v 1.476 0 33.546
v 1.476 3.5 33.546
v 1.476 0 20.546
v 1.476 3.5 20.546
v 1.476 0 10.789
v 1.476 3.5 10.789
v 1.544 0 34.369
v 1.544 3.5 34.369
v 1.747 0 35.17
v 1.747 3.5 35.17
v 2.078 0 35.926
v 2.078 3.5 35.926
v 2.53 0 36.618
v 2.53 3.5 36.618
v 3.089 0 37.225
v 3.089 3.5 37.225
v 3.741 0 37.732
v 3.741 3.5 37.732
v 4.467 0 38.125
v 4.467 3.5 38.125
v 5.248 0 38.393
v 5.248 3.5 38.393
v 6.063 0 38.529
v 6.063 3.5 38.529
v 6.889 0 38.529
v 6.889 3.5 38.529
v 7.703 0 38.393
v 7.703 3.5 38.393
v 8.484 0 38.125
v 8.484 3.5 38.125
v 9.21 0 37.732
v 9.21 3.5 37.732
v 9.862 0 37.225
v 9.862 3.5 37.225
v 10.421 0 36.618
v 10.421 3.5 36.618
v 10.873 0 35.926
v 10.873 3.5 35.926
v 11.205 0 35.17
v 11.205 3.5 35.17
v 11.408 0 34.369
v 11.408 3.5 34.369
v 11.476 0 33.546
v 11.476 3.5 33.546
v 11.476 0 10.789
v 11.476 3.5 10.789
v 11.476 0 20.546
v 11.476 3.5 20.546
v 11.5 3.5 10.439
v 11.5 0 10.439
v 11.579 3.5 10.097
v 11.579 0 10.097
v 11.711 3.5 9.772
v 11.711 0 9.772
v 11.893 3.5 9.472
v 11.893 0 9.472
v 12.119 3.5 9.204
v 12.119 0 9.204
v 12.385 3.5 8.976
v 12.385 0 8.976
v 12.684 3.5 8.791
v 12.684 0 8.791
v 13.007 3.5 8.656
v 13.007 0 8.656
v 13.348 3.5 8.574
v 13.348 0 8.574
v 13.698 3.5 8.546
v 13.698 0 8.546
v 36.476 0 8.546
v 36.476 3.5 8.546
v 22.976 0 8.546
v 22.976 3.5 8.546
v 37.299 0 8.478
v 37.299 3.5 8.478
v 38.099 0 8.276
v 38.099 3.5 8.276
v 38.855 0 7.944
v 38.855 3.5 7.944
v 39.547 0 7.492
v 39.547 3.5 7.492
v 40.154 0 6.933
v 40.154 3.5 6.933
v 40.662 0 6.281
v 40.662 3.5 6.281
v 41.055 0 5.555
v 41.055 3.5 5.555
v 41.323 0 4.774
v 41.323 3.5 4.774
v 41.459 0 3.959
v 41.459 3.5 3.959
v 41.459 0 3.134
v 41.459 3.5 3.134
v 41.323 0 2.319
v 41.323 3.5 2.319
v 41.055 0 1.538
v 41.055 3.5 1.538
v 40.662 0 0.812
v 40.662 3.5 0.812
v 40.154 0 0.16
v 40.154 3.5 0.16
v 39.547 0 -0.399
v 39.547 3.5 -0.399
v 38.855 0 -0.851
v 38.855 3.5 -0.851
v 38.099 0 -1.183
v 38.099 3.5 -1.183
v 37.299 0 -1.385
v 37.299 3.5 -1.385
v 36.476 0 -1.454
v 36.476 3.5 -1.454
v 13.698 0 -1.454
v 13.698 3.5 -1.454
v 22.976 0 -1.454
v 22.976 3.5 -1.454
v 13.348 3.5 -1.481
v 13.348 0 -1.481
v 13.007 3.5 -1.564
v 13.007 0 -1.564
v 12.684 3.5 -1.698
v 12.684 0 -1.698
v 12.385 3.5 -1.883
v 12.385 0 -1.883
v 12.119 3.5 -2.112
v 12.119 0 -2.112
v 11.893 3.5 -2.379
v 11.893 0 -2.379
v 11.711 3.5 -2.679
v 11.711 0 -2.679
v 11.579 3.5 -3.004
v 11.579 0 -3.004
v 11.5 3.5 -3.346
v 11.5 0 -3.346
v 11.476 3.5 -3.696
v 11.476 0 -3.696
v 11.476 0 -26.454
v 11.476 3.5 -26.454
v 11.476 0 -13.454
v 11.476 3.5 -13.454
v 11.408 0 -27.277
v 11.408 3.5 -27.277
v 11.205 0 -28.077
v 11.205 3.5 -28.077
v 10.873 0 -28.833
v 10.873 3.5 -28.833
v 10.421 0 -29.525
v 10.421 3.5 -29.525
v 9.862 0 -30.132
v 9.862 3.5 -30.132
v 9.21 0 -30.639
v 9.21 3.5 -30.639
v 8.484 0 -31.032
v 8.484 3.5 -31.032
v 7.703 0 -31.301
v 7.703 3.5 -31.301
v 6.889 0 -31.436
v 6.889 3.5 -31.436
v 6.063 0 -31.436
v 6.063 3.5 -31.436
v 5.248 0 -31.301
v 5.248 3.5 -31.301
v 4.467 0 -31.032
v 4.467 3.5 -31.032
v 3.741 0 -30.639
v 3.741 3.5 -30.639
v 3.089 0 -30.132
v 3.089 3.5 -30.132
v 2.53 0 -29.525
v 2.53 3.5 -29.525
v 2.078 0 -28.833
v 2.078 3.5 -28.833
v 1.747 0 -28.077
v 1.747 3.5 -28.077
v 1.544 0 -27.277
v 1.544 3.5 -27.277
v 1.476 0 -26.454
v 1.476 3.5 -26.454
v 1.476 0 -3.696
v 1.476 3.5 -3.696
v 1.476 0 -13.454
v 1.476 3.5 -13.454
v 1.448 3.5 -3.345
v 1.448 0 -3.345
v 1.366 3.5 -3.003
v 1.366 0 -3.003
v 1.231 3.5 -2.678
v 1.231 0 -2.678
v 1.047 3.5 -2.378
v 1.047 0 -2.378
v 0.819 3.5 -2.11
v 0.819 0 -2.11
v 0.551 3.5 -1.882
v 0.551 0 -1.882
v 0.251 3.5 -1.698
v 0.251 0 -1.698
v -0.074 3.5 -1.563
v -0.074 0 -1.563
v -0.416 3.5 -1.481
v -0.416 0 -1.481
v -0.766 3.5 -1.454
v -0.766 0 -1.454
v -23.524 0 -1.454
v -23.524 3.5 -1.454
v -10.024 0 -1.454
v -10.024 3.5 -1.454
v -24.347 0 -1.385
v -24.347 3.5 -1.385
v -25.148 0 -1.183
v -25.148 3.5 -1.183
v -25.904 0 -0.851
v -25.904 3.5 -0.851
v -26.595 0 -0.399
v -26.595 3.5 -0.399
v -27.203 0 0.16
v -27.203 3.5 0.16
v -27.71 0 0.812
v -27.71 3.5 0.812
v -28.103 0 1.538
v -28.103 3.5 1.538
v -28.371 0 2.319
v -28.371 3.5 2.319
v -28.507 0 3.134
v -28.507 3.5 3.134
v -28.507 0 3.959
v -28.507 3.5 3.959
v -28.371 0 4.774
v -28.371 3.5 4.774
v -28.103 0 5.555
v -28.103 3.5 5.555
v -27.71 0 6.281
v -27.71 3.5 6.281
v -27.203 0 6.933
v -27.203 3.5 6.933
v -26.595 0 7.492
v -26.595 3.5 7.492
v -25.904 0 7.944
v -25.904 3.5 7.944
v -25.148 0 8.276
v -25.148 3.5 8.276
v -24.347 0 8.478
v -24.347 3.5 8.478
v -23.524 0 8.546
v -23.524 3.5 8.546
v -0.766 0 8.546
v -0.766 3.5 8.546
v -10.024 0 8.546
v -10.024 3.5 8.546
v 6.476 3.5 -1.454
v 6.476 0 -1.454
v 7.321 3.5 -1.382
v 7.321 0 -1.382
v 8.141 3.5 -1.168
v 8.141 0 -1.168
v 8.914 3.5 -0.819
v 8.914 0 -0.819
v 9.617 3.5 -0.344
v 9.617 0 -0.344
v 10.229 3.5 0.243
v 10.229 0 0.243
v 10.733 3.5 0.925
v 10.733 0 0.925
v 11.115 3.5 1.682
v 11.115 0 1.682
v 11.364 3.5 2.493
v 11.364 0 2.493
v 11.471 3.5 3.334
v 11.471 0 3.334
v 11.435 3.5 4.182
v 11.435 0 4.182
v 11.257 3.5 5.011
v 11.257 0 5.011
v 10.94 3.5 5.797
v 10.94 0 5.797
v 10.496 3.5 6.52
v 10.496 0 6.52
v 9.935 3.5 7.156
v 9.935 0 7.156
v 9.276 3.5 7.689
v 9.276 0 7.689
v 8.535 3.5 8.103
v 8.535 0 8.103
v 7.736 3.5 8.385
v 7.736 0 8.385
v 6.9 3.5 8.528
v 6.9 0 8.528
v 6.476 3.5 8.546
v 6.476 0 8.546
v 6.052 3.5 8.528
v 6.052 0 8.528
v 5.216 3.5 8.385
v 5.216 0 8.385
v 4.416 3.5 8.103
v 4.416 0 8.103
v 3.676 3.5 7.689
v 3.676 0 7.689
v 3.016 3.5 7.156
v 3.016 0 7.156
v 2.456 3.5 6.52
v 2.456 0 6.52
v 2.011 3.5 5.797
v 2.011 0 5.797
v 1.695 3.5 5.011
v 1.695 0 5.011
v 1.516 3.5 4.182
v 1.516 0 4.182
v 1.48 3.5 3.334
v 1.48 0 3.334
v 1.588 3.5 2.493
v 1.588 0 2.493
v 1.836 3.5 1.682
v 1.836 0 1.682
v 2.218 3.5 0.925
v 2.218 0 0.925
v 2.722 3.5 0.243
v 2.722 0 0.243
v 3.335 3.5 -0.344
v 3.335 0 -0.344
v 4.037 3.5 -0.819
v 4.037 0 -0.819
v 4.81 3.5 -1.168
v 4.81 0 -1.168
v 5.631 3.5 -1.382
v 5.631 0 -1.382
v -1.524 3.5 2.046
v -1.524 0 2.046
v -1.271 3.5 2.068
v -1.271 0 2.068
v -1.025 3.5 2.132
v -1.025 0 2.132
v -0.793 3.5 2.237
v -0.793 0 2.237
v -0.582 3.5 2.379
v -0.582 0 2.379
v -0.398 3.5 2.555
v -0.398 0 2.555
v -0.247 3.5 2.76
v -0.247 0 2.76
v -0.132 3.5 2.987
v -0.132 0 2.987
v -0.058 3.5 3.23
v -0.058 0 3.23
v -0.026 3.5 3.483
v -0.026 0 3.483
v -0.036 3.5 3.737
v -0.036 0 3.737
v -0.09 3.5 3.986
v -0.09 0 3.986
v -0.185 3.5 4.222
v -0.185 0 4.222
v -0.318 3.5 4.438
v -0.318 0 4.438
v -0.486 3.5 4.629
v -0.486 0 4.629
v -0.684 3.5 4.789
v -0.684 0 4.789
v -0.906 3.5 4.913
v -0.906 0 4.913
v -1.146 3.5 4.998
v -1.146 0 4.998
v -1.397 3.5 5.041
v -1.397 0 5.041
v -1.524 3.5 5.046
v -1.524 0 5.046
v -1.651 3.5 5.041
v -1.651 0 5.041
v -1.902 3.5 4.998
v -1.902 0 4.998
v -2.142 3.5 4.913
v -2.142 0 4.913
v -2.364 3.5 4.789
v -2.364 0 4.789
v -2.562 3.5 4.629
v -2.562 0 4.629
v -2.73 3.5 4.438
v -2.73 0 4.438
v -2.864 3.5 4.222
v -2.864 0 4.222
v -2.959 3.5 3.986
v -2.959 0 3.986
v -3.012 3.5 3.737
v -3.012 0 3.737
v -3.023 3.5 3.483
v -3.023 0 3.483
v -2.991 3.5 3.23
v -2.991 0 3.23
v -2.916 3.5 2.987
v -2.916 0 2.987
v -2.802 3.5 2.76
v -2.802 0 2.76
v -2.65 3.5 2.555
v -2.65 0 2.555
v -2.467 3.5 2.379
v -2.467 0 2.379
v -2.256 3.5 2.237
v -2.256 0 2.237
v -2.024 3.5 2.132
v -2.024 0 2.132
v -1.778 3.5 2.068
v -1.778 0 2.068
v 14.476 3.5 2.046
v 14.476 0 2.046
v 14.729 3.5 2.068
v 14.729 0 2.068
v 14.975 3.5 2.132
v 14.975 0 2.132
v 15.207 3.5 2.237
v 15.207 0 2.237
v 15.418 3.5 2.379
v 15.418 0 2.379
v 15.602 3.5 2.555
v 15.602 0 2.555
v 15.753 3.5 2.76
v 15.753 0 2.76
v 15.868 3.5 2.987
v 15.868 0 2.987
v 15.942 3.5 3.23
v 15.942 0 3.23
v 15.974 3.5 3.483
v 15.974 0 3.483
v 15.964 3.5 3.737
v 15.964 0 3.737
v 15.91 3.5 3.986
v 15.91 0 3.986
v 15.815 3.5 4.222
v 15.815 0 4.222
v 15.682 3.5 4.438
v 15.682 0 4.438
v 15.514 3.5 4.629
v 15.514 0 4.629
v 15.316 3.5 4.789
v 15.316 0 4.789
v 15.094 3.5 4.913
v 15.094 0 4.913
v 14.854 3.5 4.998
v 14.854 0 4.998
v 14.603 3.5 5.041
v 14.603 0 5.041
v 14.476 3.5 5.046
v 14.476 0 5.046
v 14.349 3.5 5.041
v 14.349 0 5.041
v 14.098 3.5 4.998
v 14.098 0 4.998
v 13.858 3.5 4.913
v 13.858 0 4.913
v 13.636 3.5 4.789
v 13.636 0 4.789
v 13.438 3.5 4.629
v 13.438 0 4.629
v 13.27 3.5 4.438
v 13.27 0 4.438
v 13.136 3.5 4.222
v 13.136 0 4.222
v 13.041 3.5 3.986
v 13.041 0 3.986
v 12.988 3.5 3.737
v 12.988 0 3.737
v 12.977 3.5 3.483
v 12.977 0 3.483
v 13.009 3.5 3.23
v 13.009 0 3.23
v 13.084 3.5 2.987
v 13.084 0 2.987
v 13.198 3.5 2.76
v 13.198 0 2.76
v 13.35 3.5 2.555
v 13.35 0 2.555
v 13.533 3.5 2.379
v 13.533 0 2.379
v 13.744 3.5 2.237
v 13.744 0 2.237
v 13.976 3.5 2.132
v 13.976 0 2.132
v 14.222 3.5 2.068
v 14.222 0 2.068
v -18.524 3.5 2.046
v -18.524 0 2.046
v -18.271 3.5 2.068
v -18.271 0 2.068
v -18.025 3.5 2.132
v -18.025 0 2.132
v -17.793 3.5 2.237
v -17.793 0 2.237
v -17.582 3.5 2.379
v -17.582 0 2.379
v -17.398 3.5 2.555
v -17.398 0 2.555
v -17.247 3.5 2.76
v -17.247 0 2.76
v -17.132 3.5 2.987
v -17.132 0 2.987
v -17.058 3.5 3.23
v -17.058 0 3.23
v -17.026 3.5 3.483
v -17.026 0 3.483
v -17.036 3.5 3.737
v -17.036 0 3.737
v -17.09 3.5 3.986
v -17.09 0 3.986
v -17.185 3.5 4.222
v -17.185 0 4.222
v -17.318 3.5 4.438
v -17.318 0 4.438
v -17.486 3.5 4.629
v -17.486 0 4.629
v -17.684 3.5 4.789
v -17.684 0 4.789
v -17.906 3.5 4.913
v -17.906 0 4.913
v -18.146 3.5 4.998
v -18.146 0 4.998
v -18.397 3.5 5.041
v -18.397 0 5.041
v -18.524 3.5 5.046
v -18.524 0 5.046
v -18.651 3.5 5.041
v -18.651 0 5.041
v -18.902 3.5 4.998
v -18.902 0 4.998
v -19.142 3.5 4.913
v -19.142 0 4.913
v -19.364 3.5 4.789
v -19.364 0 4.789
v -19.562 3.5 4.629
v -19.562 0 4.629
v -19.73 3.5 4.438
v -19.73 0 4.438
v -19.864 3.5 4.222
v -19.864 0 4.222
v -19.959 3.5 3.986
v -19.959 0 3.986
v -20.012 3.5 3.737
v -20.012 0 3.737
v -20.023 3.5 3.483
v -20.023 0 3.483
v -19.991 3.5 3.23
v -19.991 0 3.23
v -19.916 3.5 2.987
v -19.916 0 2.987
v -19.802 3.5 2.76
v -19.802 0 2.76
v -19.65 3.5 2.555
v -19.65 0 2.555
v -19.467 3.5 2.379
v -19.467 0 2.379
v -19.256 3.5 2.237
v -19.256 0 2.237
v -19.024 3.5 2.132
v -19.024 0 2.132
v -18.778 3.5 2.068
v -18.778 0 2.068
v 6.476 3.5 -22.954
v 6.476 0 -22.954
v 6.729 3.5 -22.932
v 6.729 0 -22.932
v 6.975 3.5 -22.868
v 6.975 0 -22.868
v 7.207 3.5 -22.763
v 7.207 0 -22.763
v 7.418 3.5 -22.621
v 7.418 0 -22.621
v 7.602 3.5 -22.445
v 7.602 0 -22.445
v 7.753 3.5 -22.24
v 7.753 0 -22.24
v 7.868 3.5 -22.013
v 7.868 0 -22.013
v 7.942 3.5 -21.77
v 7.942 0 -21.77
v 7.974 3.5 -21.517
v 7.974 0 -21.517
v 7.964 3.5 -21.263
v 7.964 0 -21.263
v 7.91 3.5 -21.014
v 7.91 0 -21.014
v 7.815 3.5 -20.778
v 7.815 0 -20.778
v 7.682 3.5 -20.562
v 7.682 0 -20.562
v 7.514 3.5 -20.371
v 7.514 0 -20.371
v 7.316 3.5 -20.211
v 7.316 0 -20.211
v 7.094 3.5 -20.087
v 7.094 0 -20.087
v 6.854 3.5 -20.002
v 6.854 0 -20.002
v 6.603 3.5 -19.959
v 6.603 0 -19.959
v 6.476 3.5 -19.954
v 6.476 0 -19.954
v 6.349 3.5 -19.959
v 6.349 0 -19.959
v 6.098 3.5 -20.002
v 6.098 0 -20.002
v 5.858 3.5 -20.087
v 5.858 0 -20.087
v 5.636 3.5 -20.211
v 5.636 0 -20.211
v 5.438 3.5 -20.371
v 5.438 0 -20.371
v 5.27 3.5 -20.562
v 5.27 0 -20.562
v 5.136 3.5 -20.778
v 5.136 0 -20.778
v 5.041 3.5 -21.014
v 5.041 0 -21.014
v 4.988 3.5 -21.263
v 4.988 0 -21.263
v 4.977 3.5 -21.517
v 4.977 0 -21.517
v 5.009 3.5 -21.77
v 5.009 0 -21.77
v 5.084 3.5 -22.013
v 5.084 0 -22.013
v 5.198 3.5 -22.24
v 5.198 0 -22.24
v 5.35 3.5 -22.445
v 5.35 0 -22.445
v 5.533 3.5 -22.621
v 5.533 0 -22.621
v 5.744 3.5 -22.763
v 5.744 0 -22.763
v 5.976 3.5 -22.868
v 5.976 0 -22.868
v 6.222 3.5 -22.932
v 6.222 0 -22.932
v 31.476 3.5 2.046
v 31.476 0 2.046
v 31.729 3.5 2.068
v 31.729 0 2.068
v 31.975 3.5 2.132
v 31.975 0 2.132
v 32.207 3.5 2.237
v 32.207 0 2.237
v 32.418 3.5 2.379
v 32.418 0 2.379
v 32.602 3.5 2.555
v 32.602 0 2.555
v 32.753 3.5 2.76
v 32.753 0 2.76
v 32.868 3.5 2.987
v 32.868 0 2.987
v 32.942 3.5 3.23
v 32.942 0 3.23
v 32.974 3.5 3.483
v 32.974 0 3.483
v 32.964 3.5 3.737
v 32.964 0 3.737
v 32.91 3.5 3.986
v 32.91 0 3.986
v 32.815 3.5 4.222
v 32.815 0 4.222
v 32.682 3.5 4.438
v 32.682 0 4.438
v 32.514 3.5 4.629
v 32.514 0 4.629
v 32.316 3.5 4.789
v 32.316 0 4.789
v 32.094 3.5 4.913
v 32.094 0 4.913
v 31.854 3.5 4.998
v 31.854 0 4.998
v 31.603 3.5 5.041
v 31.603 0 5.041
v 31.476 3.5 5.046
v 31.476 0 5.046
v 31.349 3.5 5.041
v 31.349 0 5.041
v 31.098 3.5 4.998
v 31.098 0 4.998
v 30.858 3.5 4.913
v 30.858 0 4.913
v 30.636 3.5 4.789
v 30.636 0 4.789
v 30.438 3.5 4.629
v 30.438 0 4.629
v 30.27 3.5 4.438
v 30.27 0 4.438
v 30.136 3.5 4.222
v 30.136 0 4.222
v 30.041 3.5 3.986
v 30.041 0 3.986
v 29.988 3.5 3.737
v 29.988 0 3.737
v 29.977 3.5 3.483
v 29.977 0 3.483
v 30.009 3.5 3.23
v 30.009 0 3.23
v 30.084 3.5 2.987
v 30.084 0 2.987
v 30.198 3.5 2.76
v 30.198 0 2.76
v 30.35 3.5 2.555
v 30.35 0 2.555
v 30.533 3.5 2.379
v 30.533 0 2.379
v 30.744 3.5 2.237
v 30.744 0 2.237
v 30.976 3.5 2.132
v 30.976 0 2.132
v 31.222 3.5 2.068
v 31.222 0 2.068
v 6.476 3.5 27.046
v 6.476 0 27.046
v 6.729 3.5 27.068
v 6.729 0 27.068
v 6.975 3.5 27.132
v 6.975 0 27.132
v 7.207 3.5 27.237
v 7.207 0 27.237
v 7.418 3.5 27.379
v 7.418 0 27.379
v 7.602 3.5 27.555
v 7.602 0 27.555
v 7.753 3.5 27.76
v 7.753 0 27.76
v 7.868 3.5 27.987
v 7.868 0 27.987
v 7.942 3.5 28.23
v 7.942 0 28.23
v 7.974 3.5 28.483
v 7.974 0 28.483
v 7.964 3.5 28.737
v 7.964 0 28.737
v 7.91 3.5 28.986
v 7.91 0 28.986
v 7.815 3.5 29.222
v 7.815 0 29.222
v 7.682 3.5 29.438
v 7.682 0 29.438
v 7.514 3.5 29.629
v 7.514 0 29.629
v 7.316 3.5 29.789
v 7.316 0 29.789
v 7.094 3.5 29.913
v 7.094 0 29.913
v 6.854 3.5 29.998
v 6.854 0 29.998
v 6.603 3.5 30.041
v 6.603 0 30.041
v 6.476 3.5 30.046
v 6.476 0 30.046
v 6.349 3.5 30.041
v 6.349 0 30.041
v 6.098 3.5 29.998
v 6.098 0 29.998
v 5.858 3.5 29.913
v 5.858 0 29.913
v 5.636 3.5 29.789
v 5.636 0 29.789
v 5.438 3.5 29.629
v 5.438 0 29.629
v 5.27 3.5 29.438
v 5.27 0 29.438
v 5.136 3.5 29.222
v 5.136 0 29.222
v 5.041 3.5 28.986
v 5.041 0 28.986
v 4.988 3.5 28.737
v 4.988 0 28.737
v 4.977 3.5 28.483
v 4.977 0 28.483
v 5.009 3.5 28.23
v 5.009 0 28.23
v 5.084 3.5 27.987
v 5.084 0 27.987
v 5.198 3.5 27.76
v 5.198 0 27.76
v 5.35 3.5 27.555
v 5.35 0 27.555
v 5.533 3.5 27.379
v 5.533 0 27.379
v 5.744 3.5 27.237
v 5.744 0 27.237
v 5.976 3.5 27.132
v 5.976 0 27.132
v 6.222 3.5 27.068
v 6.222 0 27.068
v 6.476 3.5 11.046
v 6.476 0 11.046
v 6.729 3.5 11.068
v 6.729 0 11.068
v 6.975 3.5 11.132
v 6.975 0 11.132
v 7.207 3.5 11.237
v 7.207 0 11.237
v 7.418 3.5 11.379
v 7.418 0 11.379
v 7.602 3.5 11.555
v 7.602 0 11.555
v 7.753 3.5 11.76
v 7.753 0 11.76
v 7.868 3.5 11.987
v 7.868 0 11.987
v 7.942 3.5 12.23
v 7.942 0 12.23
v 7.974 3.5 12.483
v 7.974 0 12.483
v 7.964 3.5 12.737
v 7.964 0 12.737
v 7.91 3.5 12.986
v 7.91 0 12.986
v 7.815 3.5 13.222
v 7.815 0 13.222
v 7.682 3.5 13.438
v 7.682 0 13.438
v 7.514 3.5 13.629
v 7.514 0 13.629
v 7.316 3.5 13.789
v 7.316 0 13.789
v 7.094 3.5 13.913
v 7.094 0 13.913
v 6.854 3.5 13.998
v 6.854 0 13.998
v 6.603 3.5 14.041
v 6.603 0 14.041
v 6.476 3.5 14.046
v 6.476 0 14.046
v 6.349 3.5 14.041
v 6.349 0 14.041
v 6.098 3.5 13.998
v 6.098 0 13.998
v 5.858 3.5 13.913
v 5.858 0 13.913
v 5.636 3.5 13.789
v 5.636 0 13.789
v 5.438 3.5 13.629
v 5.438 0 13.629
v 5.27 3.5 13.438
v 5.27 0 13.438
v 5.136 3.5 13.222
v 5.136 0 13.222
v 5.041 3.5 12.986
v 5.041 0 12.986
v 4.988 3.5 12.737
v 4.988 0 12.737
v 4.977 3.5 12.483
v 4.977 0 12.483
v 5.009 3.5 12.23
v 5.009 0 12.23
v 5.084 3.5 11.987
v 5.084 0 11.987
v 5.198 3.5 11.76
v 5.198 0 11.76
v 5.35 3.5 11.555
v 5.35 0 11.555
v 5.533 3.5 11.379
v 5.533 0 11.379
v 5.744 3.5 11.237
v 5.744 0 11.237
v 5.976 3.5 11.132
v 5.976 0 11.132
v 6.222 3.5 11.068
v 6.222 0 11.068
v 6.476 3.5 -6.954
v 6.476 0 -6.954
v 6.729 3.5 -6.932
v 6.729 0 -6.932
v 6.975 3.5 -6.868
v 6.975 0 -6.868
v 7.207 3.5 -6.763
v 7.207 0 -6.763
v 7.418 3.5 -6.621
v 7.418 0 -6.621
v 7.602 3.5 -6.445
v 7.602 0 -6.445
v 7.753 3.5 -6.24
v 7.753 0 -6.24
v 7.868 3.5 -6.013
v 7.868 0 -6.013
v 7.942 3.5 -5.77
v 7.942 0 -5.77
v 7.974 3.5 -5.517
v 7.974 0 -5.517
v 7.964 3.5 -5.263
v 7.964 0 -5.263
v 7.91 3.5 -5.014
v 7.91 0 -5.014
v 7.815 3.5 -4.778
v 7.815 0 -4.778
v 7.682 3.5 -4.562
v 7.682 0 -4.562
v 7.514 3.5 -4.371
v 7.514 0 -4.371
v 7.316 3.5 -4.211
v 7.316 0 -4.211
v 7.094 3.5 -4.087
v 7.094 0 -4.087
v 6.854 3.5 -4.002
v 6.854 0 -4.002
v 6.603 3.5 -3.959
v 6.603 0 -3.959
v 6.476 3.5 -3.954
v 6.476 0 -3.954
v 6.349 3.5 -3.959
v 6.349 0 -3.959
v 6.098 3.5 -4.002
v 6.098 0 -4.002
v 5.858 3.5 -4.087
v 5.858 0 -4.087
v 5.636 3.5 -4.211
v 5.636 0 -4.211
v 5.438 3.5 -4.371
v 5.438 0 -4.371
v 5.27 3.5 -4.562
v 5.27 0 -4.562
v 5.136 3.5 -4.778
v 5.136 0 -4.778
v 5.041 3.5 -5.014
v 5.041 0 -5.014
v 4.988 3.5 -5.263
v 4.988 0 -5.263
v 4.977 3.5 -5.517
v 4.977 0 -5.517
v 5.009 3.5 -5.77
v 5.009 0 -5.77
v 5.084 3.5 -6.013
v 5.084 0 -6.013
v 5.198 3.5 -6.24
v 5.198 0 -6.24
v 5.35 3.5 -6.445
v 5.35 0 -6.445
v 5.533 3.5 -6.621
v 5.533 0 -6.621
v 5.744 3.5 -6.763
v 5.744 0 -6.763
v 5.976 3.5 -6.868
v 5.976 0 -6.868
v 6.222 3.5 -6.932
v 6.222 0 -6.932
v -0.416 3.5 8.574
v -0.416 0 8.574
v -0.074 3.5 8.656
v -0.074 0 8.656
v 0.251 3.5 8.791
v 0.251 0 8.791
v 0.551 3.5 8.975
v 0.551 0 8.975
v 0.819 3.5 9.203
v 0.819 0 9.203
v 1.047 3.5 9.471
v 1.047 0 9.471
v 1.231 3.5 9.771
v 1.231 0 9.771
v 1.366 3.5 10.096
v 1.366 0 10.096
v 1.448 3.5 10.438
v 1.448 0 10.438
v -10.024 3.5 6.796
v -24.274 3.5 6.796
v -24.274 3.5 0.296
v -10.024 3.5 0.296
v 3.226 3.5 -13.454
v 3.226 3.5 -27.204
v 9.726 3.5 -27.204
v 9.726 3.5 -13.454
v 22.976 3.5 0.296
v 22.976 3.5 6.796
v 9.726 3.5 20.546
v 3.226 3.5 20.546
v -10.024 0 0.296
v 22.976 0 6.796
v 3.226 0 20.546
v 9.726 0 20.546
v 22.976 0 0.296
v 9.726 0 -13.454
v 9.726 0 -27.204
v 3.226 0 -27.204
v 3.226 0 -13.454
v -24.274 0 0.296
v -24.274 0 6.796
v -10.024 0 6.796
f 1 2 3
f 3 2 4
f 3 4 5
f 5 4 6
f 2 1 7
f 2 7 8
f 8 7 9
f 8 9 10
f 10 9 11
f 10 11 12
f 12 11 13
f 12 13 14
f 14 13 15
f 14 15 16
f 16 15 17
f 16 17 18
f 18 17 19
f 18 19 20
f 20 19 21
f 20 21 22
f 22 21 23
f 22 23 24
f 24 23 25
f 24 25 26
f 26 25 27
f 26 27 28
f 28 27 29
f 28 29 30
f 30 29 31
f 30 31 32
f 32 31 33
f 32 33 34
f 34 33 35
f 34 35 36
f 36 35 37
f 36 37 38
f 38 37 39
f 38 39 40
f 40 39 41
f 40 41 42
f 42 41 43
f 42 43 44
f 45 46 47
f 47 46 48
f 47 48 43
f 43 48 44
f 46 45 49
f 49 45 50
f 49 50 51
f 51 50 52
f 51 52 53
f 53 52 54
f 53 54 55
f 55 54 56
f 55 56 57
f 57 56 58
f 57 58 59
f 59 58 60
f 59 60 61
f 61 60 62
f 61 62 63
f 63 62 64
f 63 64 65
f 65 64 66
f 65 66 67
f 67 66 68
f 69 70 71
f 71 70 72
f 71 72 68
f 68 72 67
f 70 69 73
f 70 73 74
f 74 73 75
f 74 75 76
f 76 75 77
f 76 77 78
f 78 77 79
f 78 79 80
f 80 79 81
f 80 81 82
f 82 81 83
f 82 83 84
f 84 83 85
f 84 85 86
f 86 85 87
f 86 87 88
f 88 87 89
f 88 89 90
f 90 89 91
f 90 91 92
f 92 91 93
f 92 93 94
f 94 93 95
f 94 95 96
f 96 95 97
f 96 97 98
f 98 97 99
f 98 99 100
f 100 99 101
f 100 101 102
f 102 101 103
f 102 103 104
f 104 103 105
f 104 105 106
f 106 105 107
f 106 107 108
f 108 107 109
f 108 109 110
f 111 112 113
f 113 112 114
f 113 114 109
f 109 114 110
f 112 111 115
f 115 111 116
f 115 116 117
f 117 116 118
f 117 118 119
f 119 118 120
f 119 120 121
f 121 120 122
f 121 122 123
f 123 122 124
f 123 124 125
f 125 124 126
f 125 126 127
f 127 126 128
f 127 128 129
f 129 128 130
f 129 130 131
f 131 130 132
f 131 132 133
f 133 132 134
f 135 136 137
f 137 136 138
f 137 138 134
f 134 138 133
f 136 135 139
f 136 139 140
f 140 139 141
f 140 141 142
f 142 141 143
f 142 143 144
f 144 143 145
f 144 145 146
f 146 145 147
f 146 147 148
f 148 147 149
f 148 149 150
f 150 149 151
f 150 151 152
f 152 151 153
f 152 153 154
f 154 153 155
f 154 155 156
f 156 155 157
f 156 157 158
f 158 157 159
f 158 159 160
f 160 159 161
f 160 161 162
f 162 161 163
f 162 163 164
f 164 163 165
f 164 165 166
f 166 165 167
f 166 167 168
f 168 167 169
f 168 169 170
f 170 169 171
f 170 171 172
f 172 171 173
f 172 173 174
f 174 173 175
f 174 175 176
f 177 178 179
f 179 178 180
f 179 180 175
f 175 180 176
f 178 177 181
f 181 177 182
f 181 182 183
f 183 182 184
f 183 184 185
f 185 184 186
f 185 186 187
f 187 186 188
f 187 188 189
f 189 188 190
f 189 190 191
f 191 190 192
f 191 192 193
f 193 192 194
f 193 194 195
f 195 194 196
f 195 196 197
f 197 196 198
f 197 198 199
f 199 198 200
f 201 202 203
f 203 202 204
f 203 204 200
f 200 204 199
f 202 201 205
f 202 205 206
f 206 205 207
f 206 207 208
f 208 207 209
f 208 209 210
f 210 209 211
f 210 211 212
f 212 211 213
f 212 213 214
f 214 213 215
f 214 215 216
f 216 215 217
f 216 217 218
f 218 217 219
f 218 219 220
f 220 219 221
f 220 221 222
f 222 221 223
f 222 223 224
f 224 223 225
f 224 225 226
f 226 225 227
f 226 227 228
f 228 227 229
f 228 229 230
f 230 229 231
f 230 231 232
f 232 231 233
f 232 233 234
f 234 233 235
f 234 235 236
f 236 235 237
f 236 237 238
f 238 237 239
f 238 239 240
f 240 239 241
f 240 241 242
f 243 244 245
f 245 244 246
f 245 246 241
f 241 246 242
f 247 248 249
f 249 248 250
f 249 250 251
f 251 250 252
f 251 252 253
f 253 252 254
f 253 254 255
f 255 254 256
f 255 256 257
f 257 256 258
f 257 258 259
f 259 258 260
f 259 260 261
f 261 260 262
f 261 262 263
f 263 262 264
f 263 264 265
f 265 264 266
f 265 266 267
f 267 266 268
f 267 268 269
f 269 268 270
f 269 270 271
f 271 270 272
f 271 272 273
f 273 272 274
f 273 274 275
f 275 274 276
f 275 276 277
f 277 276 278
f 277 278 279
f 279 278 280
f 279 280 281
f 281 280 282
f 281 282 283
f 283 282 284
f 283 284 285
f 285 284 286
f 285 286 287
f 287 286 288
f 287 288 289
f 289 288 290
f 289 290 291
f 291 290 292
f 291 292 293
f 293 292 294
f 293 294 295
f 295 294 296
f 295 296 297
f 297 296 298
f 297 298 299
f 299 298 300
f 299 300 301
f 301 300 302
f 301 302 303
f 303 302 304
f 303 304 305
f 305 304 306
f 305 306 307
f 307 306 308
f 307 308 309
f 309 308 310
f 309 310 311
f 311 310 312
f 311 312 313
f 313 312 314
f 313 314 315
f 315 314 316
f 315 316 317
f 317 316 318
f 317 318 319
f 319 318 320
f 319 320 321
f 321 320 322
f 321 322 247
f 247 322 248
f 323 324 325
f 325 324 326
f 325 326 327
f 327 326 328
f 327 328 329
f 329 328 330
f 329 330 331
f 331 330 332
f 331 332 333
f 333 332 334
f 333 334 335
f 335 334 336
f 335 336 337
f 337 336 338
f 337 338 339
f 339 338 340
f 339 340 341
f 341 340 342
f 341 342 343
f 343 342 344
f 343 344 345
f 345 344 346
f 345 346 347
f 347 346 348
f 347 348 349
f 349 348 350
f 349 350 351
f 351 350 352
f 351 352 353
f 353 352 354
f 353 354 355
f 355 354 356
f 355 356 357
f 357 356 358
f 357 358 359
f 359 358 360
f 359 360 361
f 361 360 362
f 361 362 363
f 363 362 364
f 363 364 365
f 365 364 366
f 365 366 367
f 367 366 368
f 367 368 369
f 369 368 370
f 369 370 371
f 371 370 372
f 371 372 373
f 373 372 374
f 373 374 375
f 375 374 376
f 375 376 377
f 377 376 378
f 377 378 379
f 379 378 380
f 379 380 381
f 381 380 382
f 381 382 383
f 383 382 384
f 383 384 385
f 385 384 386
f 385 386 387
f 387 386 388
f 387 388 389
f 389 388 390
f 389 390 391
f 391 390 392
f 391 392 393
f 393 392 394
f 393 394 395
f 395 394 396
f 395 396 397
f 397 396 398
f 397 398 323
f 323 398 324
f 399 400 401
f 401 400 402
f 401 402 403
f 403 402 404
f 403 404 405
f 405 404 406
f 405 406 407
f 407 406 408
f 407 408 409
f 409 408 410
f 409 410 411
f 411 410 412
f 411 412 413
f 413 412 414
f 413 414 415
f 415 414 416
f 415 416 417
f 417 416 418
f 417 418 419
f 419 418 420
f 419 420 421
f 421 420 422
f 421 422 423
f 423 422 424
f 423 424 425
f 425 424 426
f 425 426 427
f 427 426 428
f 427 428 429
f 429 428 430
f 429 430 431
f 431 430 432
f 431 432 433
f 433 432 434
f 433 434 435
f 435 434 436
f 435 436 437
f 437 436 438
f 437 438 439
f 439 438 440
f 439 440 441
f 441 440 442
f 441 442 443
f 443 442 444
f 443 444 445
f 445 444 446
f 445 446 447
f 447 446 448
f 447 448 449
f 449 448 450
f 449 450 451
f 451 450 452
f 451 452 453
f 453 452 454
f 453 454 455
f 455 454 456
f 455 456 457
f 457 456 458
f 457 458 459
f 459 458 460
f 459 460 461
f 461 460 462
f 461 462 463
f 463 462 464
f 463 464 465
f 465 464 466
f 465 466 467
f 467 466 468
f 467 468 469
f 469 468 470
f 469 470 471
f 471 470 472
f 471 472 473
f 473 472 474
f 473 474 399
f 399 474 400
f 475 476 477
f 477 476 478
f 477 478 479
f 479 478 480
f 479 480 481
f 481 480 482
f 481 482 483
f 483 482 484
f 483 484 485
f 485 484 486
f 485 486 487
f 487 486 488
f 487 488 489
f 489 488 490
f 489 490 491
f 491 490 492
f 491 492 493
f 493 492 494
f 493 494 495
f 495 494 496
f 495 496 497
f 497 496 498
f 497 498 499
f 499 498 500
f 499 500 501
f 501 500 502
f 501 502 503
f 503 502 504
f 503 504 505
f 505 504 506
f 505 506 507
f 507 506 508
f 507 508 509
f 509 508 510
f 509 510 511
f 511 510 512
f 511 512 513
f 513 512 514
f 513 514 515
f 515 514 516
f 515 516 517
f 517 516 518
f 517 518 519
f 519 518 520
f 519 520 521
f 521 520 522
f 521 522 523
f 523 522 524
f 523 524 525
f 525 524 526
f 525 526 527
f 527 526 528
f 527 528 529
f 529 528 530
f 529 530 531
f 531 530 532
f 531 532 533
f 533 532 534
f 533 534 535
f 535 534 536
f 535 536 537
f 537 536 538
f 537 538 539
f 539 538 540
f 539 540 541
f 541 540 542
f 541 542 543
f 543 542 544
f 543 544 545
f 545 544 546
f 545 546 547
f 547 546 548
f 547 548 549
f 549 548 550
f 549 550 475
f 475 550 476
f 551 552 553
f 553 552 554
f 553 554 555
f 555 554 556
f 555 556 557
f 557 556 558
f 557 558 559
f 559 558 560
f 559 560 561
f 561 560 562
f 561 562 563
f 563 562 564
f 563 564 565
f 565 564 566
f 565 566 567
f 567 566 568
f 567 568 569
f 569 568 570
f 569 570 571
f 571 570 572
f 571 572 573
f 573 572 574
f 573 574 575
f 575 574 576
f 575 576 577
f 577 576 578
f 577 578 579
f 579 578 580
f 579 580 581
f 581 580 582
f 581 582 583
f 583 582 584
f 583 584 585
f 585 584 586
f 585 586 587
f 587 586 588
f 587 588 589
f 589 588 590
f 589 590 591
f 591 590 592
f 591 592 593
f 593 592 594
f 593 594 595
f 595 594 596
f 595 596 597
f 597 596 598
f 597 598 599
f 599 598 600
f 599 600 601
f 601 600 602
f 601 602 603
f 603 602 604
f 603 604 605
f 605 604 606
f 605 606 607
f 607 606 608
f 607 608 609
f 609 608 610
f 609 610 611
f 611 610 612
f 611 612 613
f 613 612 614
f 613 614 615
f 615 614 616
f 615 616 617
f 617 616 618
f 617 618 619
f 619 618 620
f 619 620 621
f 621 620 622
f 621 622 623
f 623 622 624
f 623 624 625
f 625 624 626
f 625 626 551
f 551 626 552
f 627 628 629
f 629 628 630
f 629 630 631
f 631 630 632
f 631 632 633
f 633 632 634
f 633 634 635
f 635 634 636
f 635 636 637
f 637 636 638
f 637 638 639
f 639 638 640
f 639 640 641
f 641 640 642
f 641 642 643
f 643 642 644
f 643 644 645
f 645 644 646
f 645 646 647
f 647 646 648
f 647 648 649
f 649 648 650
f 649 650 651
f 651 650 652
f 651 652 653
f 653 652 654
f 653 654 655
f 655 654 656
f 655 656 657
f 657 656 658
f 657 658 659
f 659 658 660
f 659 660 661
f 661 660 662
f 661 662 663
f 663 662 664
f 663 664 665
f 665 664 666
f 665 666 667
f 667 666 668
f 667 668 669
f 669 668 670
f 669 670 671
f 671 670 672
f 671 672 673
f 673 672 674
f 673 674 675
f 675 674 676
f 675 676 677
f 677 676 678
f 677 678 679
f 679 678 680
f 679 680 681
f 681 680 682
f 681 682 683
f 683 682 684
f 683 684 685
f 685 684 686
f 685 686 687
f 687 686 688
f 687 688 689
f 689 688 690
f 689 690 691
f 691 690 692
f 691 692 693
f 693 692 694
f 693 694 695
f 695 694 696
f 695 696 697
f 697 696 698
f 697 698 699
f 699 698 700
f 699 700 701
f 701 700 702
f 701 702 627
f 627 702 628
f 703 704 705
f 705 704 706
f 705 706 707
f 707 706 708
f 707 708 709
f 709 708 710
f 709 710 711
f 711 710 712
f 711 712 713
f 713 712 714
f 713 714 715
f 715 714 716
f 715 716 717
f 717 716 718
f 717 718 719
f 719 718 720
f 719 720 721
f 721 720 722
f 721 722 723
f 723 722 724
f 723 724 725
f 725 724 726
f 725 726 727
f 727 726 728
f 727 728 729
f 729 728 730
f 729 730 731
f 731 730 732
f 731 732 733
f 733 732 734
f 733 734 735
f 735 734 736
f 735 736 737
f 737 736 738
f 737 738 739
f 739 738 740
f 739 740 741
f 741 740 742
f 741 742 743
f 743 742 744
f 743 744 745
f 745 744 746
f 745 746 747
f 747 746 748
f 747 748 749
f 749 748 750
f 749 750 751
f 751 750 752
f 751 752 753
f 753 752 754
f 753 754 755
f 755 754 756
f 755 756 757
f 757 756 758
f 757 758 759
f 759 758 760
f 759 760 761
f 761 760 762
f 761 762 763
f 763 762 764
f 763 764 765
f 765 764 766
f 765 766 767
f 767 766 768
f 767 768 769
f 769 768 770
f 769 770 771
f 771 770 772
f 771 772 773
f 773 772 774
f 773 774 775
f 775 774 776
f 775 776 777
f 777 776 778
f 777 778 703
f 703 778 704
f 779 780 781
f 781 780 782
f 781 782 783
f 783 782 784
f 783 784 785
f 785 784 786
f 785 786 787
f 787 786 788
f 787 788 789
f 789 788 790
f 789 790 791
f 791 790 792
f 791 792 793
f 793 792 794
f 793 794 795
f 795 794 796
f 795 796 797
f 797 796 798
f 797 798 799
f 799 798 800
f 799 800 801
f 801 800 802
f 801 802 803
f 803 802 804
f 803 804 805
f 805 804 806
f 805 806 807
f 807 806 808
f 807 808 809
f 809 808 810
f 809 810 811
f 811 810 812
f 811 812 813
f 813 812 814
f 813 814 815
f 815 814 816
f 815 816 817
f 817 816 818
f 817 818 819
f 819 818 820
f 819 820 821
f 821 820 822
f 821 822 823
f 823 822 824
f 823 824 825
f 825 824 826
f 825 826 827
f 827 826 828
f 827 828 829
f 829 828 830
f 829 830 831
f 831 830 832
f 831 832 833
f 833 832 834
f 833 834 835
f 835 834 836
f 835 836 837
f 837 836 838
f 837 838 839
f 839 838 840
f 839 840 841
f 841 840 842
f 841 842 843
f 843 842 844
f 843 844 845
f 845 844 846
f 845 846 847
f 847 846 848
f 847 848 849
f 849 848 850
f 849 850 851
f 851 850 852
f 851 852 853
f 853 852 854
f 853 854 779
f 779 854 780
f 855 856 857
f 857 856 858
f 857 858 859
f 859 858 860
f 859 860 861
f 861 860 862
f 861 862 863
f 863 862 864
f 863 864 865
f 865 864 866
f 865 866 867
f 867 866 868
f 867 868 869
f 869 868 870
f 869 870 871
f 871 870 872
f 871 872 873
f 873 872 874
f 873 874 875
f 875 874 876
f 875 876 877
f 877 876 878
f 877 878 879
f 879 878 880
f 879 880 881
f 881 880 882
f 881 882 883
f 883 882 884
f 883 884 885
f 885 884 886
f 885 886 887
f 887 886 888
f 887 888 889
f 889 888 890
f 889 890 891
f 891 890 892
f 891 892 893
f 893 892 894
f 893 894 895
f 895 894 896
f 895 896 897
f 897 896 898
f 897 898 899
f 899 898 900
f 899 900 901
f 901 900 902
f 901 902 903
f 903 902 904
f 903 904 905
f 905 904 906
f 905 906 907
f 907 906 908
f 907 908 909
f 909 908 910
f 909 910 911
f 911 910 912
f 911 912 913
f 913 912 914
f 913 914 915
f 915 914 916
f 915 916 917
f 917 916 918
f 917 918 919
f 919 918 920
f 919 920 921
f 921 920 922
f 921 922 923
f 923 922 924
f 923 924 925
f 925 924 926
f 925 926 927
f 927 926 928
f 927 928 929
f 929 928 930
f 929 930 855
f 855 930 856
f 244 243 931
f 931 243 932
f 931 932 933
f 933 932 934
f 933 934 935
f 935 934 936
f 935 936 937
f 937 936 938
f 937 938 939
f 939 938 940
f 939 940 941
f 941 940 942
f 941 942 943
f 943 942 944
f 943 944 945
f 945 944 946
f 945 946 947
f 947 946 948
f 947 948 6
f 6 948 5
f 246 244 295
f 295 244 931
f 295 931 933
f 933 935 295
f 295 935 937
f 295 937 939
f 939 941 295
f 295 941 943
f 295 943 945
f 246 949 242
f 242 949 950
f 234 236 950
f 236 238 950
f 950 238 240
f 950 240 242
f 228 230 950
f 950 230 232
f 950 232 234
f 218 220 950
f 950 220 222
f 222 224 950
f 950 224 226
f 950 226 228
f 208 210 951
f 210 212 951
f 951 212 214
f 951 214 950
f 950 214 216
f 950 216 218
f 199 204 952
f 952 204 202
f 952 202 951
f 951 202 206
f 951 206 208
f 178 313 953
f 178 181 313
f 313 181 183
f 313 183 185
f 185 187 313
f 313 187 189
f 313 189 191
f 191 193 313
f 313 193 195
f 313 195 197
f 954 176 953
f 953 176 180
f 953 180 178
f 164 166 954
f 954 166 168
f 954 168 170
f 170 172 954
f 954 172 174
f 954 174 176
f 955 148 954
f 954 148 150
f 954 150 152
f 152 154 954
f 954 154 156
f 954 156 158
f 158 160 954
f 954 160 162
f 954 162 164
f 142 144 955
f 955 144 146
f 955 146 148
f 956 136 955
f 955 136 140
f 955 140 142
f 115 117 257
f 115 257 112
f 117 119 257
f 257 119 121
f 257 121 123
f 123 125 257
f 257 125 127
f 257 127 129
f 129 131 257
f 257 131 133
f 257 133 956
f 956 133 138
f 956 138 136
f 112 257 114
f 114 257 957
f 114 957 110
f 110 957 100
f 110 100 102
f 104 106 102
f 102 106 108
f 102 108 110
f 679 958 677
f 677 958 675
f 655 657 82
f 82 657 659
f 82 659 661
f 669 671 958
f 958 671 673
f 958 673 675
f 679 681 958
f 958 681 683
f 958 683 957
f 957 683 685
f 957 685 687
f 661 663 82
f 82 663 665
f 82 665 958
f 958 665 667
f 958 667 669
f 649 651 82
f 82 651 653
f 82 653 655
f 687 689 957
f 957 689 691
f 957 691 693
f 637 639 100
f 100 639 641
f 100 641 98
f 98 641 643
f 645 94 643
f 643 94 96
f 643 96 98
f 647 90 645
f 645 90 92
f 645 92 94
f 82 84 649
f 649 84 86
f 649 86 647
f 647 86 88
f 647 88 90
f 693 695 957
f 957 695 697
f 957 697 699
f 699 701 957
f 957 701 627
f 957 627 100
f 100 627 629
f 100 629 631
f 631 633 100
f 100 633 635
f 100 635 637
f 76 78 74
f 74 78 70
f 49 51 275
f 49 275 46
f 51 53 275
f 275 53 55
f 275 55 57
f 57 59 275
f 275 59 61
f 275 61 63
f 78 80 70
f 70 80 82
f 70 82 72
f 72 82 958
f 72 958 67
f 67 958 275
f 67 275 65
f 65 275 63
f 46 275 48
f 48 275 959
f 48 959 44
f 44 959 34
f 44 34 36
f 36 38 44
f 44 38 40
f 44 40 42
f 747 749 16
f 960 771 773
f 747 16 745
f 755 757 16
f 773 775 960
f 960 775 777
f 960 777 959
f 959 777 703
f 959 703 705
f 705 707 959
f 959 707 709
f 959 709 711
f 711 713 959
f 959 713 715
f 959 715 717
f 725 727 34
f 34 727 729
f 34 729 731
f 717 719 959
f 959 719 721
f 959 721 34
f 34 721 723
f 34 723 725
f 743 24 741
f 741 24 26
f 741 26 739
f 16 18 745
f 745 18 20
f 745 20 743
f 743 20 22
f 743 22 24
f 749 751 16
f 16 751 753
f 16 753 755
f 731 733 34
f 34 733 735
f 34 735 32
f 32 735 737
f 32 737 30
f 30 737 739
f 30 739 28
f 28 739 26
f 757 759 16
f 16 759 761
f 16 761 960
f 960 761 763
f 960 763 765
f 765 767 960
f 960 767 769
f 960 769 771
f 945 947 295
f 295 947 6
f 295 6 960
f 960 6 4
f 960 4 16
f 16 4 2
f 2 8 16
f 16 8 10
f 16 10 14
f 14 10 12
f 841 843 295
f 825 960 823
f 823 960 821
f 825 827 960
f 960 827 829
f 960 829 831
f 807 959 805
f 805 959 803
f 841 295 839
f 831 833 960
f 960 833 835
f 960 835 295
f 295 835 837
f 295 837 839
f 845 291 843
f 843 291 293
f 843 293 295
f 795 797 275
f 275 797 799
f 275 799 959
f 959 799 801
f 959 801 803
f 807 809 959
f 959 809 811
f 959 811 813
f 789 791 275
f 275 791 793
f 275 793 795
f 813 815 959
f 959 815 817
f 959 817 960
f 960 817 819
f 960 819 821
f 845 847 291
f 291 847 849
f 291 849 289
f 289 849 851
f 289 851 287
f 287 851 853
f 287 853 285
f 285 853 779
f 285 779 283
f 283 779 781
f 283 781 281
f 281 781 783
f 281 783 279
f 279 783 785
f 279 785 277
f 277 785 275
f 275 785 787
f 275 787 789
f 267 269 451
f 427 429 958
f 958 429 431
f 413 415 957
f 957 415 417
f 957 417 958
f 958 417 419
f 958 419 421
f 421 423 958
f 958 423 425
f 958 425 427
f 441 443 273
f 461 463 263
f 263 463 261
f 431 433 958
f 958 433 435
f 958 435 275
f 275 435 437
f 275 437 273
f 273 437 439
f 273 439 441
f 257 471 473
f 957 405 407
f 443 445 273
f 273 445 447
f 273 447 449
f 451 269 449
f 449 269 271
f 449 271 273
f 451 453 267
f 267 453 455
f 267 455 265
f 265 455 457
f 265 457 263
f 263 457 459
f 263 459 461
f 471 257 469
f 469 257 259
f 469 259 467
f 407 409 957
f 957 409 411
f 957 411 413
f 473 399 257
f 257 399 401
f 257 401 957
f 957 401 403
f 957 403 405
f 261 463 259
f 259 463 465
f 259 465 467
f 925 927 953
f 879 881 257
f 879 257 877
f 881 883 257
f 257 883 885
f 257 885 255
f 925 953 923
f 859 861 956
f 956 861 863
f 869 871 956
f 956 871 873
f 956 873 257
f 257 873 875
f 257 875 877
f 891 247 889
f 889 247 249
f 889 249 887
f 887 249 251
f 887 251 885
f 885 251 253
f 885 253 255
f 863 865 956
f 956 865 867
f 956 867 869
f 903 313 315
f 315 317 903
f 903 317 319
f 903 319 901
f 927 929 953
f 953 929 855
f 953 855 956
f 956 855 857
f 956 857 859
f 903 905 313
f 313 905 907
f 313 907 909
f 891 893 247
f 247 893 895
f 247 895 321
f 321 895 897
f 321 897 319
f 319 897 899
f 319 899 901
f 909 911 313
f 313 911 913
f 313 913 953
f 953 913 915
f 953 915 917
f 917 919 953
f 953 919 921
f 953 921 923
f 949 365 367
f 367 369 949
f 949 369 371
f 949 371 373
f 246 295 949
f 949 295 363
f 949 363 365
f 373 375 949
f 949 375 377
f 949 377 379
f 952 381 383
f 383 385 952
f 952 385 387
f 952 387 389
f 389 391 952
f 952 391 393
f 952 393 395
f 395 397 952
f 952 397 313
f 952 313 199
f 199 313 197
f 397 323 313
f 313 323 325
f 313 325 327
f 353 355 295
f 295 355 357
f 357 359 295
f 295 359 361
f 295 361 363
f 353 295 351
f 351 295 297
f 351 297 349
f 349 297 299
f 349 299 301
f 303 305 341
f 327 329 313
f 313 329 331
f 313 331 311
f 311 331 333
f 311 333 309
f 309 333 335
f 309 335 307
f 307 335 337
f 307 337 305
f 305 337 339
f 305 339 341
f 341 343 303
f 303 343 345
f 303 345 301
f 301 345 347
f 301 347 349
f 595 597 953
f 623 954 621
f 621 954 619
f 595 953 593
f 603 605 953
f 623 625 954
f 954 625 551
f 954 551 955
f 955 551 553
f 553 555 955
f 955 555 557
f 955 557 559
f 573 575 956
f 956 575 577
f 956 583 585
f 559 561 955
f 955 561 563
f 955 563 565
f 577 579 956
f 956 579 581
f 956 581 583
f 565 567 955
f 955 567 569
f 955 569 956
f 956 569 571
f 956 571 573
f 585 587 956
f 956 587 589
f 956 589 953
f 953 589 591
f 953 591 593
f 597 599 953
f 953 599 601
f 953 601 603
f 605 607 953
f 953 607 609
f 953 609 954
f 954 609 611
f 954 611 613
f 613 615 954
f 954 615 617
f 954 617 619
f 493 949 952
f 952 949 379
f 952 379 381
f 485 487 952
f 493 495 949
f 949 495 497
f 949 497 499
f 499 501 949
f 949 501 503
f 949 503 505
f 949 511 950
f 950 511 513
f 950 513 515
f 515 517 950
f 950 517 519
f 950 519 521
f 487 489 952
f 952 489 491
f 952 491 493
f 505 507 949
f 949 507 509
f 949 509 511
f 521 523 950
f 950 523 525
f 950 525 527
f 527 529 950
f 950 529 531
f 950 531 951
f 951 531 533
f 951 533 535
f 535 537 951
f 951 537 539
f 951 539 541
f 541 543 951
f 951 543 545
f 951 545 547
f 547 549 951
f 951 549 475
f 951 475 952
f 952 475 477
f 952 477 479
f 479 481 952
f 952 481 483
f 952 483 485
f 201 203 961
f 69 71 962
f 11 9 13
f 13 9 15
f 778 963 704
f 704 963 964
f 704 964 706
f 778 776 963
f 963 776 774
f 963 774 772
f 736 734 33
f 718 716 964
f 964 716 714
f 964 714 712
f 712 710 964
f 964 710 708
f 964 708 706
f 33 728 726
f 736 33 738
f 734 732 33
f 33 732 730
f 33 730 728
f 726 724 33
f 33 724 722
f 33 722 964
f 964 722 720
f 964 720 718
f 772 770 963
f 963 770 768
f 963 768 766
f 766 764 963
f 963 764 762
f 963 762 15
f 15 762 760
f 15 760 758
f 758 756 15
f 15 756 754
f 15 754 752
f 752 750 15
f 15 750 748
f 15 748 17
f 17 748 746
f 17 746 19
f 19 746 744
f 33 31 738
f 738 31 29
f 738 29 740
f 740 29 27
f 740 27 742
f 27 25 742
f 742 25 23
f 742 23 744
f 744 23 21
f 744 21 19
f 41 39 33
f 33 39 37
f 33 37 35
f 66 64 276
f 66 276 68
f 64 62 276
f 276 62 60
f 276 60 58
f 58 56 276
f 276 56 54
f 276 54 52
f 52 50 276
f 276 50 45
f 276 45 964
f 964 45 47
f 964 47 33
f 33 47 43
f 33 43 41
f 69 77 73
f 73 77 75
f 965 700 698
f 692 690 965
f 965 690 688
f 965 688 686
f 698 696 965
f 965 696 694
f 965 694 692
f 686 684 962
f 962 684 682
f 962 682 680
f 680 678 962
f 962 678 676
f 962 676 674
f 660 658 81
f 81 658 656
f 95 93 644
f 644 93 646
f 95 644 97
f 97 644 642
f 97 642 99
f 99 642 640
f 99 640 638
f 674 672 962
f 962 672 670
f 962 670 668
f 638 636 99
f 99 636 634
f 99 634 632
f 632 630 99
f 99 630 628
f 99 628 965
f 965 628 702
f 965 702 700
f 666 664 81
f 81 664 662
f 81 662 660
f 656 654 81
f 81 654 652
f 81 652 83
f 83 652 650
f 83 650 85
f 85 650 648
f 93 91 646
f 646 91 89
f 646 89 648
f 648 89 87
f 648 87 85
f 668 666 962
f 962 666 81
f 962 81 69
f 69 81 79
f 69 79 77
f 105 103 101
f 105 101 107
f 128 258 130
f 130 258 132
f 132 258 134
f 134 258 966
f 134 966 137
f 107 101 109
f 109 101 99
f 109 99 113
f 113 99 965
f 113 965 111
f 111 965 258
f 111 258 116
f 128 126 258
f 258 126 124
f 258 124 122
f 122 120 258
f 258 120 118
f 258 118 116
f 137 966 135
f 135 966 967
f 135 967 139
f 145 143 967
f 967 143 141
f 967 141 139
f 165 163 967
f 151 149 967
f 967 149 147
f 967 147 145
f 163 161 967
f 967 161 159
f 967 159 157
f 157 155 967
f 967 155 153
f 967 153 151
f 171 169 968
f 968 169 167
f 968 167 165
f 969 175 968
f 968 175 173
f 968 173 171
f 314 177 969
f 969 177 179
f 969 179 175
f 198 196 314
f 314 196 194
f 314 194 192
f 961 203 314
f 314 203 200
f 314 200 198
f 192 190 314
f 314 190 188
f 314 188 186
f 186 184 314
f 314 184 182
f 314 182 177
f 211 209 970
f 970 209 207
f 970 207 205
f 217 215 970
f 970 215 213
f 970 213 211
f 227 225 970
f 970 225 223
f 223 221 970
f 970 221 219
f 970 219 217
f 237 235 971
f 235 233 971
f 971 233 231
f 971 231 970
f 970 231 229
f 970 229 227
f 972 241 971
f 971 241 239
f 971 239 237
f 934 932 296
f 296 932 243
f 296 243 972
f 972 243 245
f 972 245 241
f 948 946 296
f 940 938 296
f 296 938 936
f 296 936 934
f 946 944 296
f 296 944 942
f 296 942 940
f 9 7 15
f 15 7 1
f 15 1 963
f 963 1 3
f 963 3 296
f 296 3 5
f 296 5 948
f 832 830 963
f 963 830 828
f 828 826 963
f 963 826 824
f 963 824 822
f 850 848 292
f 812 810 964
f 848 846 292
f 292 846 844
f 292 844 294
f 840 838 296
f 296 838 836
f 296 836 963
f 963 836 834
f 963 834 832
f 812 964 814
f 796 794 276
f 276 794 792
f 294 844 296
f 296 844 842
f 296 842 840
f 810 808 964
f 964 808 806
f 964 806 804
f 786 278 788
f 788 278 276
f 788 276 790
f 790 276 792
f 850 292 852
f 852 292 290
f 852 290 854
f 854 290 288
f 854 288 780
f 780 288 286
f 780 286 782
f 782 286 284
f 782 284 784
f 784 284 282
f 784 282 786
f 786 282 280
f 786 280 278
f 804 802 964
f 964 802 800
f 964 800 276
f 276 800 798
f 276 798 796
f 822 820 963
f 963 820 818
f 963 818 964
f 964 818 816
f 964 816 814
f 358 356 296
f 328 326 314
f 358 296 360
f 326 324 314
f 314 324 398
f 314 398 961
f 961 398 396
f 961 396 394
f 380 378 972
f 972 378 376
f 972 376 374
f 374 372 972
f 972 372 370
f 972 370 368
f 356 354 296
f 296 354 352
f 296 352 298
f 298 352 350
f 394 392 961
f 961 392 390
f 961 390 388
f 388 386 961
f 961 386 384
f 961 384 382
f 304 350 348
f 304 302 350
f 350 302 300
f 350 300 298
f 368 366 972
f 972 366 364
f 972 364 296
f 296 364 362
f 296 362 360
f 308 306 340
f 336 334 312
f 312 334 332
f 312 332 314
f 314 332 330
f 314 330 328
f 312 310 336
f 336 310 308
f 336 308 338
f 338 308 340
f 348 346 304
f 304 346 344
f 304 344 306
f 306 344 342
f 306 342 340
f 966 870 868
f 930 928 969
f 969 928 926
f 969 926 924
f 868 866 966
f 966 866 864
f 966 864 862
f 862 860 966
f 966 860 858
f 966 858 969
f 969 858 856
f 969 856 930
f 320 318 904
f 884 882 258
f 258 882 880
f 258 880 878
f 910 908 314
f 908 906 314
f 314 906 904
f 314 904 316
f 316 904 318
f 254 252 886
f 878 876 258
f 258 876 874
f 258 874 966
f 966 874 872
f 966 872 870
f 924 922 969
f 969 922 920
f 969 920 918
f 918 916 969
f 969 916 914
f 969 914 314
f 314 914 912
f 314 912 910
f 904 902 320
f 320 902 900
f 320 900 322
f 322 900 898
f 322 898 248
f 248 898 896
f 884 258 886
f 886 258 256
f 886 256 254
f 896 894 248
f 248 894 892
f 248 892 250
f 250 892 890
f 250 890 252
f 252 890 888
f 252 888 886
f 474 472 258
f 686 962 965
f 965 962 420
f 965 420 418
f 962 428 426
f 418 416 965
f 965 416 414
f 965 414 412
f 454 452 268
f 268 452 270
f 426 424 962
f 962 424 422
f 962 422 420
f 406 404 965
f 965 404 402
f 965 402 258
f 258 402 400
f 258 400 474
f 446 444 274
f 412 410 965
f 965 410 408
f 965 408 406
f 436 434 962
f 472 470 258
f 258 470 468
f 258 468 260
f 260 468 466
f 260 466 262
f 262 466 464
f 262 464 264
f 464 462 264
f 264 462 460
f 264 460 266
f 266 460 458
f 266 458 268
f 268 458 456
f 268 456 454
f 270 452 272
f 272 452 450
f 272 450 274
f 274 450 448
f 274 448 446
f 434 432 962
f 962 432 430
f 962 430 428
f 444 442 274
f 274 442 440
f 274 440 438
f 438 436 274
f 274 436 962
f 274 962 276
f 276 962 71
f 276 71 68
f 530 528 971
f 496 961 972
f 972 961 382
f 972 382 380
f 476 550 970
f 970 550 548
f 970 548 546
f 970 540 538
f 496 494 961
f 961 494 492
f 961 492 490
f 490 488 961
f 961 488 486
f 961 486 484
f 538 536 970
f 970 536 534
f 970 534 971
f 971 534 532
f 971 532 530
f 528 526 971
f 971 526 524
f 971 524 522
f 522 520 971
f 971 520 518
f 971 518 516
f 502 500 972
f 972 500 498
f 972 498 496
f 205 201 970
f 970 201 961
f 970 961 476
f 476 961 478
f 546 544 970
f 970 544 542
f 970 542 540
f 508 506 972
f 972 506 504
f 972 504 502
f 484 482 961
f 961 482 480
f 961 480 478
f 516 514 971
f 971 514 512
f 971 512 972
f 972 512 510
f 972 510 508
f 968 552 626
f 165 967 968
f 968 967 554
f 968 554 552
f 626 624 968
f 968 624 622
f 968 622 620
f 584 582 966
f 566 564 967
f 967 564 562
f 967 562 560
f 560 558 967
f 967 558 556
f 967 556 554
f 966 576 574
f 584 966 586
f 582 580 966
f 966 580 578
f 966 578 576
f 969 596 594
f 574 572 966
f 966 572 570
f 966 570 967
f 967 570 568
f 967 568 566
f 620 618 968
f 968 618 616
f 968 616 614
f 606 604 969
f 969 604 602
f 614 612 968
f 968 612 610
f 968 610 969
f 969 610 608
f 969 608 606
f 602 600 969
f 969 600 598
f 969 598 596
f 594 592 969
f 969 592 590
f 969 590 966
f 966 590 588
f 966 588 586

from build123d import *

# Parameters (mm, degrees)
CROQUIS1_R              = 1.5
CROQUIS1_R_2            = 5
SALIENTE_EXTRUIR2_DEPTH = 3.5


with BuildPart() as part:
    # Croquis1 → Saliente-Extruir2 (new body)
    with BuildSketch(Plane(origin=(0, 0, 0), x_dir=(1, 0, 0), z_dir=(0, 1, 0))):
        with BuildLine():
            Line((1.47572532, 11.484579709), (1.47572532, 3.695762793))
            ThreePointArc((1.47572532, 3.695762793), (0.818994747, 2.110274939), (-0.766493108, 1.453544366))
            Line((-0.766493108, 1.453544366), (-23.52427468, 1.453544366))
            ThreePointArc((-23.52427468, 1.453544366), (-28.52427468, -3.546455634), (-23.52427468, -8.546455634))
            Line((-23.52427468, -8.546455634), (-0.766493108, -8.546455634))
            ThreePointArc((-0.766493108, -8.546455634), (0.818994747, -9.203186206), (1.47572532, -10.788674061))
            Line((1.47572532, -10.788674061), (1.47572532, -18.577490976))
            Line((1.47572532, -18.577490976), (1.47572532, -33.546455634))
            ThreePointArc((1.47572532, -33.546455634), (6.47572532, -38.546455634), (11.47572532, -33.546455634))
            Line((11.47572532, -33.546455634), (11.47572532, -10.788674061))
            Line((11.47572532, -10.788674061), (11.47572532, -10.748363891))
            ThreePointArc((11.47572532, -10.748363891), (12.133603326, -9.190173106), (13.697697252, -8.546455634))
            Line((13.697697252, -8.546455634), (36.47572532, -8.546455634))
            ThreePointArc((36.47572532, -8.546455634), (41.47572532, -3.546455634), (36.47572532, 1.453544366))
            Line((36.47572532, 1.453544366), (13.697697252, 1.453544366))
            ThreePointArc((13.697697252, 1.453544366), (12.133603326, 2.097261838), (11.47572532, 3.655452623))
            Line((11.47572532, 3.655452623), (11.47572532, 3.695762793))
            Line((11.47572532, 3.695762793), (11.47572532, 26.453544366))
            ThreePointArc((11.47572532, 26.453544366), (6.47572532, 31.453544366), (1.47572532, 26.453544366))
            Line((1.47572532, 26.453544366), (1.47572532, 11.484579709))
        make_face()
        with Locations(Location((-1.52427468, -3.546455634, 0), (0, 0, 270))):
            Circle(CROQUIS1_R, mode=Mode.SUBTRACT)
        with Locations(Location((6.47572532, -28.546455634, 0), (0, 0, 270))):
            Circle(CROQUIS1_R, mode=Mode.SUBTRACT)
        with Locations(Location((6.47572532, -12.546455634, 0), (0, 0, 270))):
            Circle(CROQUIS1_R, mode=Mode.SUBTRACT)
        with Locations(Location((-18.52427468, -3.546455634, 0), (0, 0, 270))):
            Circle(CROQUIS1_R, mode=Mode.SUBTRACT)
        with Locations(Location((6.47572532, -3.546455634, 0), (0, 0, 270))):
            Circle(CROQUIS1_R_2, mode=Mode.SUBTRACT)
        with Locations(Location((14.47572532, -3.546455634, 0), (0, 0, 270))):
            Circle(CROQUIS1_R, mode=Mode.SUBTRACT)
        with Locations(Location((6.47572532, 5.453544366, 0), (0, 0, 270))):
            Circle(CROQUIS1_R, mode=Mode.SUBTRACT)
        with Locations(Location((31.47572532, -3.546455634, 0), (0, 0, 270))):
            Circle(CROQUIS1_R, mode=Mode.SUBTRACT)
        with Locations(Location((6.47572532, 21.453544366, 0), (0, 0, 270))):
            Circle(CROQUIS1_R, mode=Mode.SUBTRACT)
    extrude(amount=SALIENTE_EXTRUIR2_DEPTH)


solid = part.part
